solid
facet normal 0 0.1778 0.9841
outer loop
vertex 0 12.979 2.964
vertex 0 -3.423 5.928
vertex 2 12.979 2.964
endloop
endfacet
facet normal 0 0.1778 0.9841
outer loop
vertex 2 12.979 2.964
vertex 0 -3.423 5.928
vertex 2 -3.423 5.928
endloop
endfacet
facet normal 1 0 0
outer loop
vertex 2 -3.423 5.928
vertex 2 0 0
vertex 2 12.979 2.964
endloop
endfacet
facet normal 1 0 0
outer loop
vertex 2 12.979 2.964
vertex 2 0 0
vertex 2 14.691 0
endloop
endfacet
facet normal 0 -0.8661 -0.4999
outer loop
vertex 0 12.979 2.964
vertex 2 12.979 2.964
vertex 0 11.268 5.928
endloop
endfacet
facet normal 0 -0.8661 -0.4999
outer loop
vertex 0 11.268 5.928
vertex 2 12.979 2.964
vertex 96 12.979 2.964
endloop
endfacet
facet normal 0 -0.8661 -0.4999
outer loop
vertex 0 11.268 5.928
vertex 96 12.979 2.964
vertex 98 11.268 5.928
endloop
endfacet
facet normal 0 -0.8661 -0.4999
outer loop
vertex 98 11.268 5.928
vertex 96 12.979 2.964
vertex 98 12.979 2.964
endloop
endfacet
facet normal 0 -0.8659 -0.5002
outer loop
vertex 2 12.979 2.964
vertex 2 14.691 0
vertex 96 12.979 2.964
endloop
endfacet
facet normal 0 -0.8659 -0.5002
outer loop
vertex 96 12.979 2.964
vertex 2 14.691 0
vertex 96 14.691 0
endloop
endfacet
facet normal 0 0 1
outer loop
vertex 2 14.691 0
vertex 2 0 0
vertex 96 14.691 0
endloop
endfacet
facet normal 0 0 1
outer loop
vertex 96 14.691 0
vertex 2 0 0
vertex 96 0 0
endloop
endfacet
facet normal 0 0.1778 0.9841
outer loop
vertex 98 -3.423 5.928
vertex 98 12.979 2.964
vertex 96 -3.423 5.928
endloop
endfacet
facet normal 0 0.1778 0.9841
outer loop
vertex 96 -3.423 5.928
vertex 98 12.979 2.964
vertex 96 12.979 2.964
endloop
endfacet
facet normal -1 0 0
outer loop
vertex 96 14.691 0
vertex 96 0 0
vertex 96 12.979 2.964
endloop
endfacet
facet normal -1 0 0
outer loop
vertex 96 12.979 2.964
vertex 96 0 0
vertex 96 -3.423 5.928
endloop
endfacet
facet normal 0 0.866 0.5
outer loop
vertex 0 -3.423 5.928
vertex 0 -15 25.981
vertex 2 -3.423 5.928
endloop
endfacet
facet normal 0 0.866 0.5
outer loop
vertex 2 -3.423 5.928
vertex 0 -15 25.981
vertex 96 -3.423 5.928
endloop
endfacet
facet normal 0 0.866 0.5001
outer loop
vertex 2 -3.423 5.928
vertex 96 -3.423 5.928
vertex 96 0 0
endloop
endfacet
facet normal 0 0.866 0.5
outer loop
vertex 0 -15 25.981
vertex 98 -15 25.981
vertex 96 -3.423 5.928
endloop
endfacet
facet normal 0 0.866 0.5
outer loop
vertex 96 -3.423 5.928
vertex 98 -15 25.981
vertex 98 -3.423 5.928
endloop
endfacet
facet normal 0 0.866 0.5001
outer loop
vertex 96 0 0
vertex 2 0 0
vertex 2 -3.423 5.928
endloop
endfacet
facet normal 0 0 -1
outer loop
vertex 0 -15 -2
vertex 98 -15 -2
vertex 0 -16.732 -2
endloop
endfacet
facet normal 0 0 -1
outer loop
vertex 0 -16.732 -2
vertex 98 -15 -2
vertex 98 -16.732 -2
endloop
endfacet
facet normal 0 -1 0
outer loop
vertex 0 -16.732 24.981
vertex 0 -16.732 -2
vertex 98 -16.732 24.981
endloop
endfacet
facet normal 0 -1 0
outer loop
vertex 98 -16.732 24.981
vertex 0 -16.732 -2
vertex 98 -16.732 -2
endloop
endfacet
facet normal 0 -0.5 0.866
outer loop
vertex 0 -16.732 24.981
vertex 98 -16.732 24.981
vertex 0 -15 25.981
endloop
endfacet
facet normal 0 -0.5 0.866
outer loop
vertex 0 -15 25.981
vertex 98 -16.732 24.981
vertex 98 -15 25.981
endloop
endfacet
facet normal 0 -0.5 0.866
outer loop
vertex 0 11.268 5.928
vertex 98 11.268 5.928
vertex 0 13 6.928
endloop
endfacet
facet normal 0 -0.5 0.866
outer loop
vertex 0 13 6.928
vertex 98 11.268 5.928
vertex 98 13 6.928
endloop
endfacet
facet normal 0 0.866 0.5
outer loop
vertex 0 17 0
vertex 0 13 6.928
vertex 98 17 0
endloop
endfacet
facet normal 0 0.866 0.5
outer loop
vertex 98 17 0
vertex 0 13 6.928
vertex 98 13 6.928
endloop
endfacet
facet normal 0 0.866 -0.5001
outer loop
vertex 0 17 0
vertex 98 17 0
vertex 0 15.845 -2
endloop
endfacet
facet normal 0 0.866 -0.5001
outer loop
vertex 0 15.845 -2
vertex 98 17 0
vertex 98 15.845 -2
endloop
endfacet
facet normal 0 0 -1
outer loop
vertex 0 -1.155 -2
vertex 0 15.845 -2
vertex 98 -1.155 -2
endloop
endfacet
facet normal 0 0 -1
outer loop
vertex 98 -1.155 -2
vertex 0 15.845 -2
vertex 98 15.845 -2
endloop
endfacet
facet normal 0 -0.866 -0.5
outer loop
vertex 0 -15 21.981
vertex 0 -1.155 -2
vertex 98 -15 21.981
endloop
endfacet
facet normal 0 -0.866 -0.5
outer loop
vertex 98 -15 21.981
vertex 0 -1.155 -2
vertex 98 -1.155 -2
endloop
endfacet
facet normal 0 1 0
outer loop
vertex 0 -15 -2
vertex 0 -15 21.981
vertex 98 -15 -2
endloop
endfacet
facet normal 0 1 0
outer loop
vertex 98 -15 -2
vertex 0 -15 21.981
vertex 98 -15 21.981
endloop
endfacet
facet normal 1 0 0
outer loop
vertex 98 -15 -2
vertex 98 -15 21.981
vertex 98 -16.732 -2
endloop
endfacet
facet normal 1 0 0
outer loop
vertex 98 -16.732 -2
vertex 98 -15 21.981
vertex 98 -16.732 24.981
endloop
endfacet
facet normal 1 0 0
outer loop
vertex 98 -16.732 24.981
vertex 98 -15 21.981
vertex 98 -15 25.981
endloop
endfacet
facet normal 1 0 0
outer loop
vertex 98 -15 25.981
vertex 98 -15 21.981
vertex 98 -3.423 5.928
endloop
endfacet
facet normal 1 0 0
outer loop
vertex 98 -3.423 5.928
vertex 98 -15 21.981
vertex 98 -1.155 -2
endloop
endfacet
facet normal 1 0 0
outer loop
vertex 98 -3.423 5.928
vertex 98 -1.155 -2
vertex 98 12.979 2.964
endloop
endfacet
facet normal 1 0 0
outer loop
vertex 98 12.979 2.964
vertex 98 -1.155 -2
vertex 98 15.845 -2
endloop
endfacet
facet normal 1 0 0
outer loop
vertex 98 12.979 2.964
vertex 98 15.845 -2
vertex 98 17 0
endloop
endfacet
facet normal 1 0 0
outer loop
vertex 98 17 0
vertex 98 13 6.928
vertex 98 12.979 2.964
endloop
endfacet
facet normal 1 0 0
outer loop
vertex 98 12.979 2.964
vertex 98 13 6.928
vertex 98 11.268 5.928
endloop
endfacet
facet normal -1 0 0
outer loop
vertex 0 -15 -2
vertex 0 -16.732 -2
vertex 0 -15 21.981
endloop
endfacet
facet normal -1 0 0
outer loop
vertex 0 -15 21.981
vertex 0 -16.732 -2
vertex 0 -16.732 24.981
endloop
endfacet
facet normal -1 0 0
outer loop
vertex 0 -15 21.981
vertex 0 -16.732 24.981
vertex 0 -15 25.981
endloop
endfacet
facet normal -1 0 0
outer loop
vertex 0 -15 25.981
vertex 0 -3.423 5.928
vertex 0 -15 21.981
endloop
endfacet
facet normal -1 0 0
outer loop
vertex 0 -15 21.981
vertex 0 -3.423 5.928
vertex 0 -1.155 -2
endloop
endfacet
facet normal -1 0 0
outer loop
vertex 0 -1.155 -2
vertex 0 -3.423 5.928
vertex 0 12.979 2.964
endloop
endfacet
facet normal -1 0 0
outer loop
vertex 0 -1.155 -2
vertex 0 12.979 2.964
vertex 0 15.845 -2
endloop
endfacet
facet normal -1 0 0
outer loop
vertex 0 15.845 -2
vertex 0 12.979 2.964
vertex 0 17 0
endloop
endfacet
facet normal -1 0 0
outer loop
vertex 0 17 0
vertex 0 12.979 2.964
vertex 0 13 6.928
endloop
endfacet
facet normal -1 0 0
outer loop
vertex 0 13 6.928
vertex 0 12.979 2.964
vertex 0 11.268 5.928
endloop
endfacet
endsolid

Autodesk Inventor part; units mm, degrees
ref_plane "YZ Plane" through (0, 0, 0) normal (1, 0, 0) x (0, 1, 0)
ref_plane "XZ Plane" through (0, 0, 0) normal (0, 1, 0) x (-1, 0, 0)
ref_plane "XY Plane" through (0, 0, 0) normal (0, 0, 1) x (1, 0, 0)
sketch "Sketch1" plane through (0, 0, 0) normal (1, 0, 0) x (0, 1, 0)
  line L0 (0, 0) -> (17, 0)
  line L1 (17, 0) -> (17, -2)
  line L2 (17, -2) -> (0, -2)
  line L3 (0, -2) -> (0, 0)
  line L4 (17, 0) -> (13, 6.9282)
  line L5 (17, 0) -> (25, 0) construction
  line L6 (13, 6.9282) -> (11.2679, 5.9282)
  line L7 (11.2679, 5.9282) -> (14.6906, 0)
  line L8 (0, 0) -> (-15, 25.9808)
  line L9 (0, 0) -> (30, 0) construction
  line L10 (-15, 25.9808) -> (-16.7321, 24.9808)
  line L11 (-16.7321, 24.9808) -> (-1.1547, -2)
  line L12 (-1.1547, -2) -> (0, -2)
  line L13 (-16.7321, 24.9808) -> (-16.7321, -2)
  line L14 (-15, 25.9808) -> (-15, -2)
  line L15 (-15, -2) -> (-16.7321, -2)
  line L16 (17, 0) -> (15.8453, -2)
  point P0 (-15, 21.9808)
  dimension "d0" = 17
  dimension "d1" = 2
  dimension "d2" = 8
  dimension "d3" = 120
  dimension "d4" = 2
  dimension "d5" = 30
  dimension "d6" = 120
  dimension "d7" = 2
extrude "Extrusion1" add sketch "Sketch1" along normal blind 98 contours L0 L16 L2 L3 | L3 L12 L11 L14 L8 | L7 L6 L4 L0 | L14 L11 L10 | L11 L14 L15 L13
sketch "Sketch2" plane through (98, 0, 0) normal (1, 0, 0) x (0, 0, -1)
  line L0 (-5.9282, 11.2679) -> (-5.9282, -3.4226)
  line L1 (0, 0) -> (-25.9808, -15) projected
  line L2 (-5.9282, -3.4226) -> (-2.9641, 12.9793)
  line L3 (-5.9282, 11.2679) -> (0, 14.6906) projected
  line L4 (-5.9282, -3.4226) -> (0, 0)
  line L5 (0, 0) -> (0, 14.6906)
  line L6 (-2.9641, 12.9793) -> (0, 14.6906)
extrude "Extrusion2" add sketch "Sketch2" against normal blind 2 contours L2 L3 L5 L1
sketch "Sketch3" plane through (0, 0, 0) normal (-1, 0, 0) x (0, 0, 1)
  line L0 (2.9641, 12.9793) -> (5.9282, -3.4226) projected
  line L1 (5.9282, -3.4226) -> (2.9641, 12.9793)
  line L2 (5.9282, 11.2679) -> (0, 14.6906) projected
  line L3 (2.9641, 12.9793) -> (0, 14.6906)
  line L4 (5.9282, -3.4226) -> (0, 0) projected
  line L5 (0, 14.6906) -> (0, 0)
  line L6 (0, 0) -> (5.9282, -3.4226)
extrude "Extrusion3" add sketch "Sketch3" against normal blind 2
properties part number "Name_card_case"
